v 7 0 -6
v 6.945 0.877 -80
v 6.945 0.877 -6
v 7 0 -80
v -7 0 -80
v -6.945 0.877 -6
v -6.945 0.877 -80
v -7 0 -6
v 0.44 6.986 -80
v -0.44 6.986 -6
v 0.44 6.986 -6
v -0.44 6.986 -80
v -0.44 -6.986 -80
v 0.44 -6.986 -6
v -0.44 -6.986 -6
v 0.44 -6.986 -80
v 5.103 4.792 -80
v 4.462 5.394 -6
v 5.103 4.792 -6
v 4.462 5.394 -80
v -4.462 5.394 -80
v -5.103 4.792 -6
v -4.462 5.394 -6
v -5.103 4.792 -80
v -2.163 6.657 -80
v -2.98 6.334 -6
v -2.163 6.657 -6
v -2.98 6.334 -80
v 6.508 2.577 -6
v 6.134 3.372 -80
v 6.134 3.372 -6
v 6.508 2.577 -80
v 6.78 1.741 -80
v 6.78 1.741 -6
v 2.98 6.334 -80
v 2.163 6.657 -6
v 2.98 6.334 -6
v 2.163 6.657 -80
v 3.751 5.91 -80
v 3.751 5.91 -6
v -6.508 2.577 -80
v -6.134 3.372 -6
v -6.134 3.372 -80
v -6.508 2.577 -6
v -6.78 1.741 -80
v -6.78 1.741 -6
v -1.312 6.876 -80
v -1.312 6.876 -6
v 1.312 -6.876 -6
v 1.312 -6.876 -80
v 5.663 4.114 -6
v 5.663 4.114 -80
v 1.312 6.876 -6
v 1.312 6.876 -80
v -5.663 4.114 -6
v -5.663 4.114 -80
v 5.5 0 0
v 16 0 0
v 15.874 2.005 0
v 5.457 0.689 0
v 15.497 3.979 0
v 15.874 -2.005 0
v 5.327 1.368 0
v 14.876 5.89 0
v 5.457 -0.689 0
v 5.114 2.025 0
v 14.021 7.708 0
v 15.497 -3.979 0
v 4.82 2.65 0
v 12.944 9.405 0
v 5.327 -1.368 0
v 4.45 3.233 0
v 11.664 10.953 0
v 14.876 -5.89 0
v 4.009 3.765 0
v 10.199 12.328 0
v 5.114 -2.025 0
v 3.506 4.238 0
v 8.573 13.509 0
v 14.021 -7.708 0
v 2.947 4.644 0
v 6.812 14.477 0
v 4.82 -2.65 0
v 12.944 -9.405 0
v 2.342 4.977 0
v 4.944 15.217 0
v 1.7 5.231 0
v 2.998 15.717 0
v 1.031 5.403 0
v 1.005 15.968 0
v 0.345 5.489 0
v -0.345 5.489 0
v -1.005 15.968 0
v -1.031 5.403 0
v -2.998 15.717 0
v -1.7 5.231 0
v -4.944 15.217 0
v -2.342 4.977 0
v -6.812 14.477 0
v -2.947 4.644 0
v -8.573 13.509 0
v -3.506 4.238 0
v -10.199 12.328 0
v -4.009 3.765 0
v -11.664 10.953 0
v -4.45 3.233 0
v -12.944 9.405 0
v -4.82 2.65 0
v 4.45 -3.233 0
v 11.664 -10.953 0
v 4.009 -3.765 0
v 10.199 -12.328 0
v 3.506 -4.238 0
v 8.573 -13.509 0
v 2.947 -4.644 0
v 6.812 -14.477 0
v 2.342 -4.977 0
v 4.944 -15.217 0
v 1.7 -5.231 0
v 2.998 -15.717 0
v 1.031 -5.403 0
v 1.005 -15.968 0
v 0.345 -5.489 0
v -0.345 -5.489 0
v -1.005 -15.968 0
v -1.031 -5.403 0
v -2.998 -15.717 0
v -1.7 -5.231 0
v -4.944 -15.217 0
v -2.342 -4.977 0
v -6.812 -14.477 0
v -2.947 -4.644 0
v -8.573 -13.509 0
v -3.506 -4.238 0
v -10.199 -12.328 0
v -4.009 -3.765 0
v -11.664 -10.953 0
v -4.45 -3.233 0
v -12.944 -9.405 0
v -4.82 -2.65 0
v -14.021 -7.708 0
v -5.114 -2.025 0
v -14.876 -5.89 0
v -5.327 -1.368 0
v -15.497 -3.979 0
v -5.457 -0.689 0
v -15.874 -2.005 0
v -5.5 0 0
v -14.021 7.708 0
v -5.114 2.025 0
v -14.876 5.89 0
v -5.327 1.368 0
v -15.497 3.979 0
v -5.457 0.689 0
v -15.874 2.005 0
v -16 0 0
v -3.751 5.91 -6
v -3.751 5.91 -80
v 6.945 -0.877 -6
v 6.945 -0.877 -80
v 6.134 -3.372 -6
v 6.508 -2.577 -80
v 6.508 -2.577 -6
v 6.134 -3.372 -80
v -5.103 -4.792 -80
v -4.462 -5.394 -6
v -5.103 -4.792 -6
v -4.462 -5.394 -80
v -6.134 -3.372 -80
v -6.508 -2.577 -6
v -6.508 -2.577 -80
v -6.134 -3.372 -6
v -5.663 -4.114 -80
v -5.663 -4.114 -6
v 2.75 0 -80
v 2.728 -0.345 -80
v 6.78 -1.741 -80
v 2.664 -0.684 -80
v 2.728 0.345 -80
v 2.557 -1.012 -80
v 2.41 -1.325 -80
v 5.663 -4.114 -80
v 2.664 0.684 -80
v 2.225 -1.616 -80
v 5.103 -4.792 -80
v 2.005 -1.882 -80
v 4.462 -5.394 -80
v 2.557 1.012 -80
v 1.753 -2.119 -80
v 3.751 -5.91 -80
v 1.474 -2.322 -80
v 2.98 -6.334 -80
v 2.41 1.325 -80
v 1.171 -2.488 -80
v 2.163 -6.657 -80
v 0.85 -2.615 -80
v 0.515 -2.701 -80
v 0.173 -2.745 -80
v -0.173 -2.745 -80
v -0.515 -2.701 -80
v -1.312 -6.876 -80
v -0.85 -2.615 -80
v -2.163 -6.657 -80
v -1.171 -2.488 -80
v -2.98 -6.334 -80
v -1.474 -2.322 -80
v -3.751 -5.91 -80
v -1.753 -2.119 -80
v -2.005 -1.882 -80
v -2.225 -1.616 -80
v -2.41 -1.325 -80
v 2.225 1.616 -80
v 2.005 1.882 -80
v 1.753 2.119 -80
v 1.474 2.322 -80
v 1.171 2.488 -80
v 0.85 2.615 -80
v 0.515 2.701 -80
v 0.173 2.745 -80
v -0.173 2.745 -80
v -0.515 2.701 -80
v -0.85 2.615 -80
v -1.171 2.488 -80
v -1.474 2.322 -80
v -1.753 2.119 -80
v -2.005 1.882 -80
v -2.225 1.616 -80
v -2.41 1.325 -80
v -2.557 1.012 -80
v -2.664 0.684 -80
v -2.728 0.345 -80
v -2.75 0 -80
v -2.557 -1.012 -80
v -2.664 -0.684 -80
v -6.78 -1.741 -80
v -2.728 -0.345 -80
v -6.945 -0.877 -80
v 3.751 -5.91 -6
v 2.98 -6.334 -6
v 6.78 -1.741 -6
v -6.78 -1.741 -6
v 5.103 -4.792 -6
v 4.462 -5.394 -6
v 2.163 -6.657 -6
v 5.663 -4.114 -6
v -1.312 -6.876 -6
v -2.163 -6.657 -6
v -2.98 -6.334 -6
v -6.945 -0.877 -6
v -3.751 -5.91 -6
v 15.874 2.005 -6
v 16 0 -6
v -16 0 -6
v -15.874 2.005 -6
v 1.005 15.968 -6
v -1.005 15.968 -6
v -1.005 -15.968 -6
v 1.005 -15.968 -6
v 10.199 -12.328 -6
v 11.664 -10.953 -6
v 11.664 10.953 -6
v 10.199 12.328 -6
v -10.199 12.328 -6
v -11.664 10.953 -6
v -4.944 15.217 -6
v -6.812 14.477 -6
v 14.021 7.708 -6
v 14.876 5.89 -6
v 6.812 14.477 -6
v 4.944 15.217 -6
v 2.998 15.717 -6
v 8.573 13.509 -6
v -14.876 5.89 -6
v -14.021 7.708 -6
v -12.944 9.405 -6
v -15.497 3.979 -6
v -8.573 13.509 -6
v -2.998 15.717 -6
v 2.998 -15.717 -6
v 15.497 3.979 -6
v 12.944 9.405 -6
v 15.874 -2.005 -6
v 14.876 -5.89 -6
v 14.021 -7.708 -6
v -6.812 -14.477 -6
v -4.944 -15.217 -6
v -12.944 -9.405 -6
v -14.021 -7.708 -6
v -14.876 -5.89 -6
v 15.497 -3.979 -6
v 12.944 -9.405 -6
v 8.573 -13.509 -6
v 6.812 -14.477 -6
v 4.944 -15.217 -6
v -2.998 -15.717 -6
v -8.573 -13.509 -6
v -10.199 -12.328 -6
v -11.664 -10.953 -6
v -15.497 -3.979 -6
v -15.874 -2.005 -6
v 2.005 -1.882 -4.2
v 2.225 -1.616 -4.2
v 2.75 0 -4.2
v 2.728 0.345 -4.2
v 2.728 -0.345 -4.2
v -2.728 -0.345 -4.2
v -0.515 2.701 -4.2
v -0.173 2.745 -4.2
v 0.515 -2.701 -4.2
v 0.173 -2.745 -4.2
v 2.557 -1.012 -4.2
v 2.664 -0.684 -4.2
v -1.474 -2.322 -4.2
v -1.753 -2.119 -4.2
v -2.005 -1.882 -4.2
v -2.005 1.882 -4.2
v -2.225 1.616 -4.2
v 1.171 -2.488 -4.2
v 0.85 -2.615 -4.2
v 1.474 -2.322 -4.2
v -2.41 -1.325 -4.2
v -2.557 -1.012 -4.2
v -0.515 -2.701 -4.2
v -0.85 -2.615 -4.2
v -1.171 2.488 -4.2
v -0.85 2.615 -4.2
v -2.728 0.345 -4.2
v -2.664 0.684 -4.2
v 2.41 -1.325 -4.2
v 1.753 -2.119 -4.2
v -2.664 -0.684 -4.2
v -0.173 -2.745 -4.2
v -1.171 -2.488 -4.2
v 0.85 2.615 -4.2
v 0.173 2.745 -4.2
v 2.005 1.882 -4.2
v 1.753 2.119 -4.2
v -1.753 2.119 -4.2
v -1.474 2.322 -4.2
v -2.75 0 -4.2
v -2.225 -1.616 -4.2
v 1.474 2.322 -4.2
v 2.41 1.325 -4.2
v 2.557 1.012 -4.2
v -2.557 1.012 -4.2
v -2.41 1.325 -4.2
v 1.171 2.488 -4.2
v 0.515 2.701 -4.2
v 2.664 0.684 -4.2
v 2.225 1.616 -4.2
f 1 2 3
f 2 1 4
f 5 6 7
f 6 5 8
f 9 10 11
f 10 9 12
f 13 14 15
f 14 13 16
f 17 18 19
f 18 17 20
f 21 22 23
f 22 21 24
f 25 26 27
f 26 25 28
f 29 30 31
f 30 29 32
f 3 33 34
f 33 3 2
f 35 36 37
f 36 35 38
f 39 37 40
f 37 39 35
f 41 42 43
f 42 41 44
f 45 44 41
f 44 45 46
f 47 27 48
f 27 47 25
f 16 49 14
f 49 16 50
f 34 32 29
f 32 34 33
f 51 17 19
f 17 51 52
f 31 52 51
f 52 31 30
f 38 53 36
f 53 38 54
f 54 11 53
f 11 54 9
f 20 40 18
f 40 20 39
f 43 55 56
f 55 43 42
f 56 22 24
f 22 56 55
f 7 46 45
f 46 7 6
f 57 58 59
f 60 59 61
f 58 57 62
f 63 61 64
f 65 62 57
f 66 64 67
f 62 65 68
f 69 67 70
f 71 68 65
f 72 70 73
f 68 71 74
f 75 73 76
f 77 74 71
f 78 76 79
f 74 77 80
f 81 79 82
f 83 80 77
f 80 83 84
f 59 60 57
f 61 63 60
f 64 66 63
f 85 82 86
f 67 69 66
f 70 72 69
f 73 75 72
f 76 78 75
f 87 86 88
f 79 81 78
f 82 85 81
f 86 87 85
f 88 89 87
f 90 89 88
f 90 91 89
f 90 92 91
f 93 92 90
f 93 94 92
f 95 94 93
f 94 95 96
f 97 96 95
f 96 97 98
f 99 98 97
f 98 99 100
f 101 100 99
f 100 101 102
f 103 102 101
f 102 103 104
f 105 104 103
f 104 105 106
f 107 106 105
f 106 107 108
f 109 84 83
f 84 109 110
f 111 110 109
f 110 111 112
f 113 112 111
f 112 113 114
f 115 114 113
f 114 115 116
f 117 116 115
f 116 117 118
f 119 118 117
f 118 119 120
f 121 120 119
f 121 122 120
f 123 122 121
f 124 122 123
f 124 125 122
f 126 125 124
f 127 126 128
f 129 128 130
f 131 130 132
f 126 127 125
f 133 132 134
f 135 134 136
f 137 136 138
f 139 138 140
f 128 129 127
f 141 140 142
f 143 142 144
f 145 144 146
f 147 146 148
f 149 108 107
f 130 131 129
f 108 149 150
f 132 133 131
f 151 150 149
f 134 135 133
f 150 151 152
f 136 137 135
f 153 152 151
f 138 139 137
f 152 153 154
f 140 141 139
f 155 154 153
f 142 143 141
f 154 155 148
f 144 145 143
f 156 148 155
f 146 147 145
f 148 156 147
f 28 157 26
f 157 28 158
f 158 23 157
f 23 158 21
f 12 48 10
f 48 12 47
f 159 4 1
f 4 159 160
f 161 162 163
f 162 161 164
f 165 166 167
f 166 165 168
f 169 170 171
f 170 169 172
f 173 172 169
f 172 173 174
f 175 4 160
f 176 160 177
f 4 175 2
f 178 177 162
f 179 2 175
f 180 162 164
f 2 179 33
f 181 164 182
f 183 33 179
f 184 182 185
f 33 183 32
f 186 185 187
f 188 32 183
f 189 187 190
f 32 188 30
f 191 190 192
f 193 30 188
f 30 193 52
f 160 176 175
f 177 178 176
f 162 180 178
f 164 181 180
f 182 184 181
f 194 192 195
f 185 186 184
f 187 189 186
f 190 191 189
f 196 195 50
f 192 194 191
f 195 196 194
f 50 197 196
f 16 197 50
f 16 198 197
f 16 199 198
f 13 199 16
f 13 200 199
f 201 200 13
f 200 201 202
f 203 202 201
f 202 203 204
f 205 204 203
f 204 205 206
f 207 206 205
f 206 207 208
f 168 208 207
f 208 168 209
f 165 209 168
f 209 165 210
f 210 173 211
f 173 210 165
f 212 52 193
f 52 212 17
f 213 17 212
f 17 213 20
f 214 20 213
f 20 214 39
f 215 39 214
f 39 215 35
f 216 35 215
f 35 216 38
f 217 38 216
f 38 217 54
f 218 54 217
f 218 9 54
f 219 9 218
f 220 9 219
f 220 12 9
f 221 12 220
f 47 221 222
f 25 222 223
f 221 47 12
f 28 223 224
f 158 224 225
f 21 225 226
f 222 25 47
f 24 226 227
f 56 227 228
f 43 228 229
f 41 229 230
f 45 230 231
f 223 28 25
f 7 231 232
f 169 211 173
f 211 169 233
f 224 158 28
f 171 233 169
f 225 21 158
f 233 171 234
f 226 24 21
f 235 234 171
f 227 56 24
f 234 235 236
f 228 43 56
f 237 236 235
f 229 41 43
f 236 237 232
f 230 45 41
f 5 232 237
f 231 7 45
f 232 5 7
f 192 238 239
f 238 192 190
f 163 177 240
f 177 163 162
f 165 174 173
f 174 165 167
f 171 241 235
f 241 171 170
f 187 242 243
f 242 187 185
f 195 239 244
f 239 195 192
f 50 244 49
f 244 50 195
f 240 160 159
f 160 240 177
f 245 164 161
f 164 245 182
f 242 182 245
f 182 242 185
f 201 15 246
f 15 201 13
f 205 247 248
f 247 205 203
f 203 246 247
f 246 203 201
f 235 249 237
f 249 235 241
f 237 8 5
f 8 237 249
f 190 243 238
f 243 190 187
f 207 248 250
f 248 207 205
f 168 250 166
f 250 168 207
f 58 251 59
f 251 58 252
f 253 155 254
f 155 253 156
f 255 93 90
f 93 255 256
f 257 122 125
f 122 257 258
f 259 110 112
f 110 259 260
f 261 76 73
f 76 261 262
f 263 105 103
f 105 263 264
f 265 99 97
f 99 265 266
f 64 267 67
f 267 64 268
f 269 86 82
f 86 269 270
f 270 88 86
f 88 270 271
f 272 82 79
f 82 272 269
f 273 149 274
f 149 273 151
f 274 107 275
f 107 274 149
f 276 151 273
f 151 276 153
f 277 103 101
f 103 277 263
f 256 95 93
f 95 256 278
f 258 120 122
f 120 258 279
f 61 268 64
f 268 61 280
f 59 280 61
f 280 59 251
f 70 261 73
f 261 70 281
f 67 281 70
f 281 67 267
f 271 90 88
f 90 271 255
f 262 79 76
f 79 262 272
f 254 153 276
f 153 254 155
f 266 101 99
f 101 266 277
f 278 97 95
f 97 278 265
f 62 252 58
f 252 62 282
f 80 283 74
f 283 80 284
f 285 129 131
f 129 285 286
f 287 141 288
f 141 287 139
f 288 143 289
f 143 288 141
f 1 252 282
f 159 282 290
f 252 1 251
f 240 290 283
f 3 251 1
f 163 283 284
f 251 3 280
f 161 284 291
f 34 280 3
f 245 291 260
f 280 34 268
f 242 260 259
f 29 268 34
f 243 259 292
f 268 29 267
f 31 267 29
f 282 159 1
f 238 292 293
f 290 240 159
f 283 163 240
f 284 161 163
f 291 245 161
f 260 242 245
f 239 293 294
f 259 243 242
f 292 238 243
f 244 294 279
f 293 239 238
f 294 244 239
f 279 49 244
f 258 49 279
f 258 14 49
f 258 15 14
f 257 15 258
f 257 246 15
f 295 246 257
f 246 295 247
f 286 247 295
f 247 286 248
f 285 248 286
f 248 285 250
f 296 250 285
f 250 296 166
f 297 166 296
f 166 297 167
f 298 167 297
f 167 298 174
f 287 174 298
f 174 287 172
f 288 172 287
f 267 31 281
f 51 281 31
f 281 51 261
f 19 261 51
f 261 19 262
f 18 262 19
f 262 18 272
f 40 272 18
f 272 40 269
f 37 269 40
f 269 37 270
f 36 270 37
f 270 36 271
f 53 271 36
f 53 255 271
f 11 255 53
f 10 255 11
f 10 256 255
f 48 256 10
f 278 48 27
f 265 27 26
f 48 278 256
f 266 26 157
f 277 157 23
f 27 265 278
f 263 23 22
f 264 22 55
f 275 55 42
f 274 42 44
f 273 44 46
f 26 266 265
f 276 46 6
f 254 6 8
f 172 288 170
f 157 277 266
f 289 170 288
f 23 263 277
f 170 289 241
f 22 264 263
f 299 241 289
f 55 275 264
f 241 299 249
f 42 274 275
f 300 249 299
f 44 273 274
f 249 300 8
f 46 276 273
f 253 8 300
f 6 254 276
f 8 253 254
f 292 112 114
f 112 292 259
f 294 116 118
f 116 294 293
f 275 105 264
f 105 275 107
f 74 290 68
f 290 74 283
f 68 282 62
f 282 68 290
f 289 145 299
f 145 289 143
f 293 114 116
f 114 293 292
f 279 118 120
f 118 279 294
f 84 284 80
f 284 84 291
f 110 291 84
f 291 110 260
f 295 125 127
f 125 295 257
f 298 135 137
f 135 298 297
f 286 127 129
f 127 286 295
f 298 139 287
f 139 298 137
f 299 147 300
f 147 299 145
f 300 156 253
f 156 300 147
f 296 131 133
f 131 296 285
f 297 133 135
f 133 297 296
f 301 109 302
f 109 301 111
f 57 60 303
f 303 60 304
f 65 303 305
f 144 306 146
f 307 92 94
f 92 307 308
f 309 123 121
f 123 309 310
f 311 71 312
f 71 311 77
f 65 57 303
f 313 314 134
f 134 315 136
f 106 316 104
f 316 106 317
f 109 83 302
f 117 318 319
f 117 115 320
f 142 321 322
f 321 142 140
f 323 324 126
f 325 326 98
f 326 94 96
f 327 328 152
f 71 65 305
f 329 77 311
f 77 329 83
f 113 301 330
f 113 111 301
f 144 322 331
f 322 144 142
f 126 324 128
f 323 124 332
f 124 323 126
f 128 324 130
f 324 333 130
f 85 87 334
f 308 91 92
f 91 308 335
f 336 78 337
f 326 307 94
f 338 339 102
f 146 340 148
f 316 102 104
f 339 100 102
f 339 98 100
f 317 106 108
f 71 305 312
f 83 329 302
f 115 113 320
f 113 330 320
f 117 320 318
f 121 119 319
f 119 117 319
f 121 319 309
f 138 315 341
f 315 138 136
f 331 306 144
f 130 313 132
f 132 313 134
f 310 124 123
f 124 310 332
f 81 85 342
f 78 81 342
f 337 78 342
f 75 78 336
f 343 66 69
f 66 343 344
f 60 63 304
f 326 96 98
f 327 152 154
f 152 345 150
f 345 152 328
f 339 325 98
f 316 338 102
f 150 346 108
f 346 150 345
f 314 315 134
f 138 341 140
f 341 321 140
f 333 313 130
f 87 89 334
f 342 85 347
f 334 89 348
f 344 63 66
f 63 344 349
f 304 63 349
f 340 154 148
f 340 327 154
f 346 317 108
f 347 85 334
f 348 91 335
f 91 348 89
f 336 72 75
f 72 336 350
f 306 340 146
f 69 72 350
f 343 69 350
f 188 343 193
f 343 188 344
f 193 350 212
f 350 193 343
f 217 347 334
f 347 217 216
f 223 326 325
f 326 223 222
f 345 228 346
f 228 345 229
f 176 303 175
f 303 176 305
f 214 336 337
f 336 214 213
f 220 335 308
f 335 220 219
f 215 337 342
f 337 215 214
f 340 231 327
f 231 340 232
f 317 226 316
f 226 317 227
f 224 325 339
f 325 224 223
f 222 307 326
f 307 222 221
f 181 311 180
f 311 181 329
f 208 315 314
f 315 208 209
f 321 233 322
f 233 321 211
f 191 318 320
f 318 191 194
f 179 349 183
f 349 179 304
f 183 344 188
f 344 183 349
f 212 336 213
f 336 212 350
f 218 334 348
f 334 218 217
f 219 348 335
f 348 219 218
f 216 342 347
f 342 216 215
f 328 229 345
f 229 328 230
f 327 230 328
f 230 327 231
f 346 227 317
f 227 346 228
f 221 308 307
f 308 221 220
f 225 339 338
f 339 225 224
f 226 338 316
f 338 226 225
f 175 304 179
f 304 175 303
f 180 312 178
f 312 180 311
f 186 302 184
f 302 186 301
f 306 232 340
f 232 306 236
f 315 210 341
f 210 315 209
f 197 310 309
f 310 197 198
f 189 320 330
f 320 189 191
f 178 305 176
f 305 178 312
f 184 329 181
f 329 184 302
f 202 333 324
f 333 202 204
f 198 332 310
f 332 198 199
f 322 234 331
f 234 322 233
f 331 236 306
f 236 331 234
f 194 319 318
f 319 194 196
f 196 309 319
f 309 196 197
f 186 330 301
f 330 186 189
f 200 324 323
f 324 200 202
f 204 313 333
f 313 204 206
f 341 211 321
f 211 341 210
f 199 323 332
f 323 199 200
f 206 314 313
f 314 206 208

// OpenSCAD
$fn = 50;


difference() {
	union() {
		translate(v = [0, 0, -80.0000000000]) {
			cylinder(h = 80, r = 7.0000000000);
		}
		translate(v = [0, 0, -6.0000000000]) {
			cylinder(h = 6, r = 16.0000000000);
		}
	}
	union() {
		translate(v = [0, 0, 0]) {
			rotate(a = [0, 0, 0]) {
				difference() {
					union() {
						#translate(v = [0, 0, -80.0000000000]) {
							cylinder(h = 80, r = 2.2500000000);
						}
						#translate(v = [0, 0, -4.2000000000]) {
							cylinder(h = 4.2000000000, r = 7.0000000000, r1 = 2.7500000000, r2 = 5.5000000000);
						}
						#translate(v = [0, 0, -80.0000000000]) {
							cylinder(h = 80, r = 2.7500000000);
						}
						#translate(v = [0, 0, -80.0000000000]) {
							cylinder(h = 80, r = 2.2500000000);
						}
					}
					union();
				}
			}
		}
	}
}
